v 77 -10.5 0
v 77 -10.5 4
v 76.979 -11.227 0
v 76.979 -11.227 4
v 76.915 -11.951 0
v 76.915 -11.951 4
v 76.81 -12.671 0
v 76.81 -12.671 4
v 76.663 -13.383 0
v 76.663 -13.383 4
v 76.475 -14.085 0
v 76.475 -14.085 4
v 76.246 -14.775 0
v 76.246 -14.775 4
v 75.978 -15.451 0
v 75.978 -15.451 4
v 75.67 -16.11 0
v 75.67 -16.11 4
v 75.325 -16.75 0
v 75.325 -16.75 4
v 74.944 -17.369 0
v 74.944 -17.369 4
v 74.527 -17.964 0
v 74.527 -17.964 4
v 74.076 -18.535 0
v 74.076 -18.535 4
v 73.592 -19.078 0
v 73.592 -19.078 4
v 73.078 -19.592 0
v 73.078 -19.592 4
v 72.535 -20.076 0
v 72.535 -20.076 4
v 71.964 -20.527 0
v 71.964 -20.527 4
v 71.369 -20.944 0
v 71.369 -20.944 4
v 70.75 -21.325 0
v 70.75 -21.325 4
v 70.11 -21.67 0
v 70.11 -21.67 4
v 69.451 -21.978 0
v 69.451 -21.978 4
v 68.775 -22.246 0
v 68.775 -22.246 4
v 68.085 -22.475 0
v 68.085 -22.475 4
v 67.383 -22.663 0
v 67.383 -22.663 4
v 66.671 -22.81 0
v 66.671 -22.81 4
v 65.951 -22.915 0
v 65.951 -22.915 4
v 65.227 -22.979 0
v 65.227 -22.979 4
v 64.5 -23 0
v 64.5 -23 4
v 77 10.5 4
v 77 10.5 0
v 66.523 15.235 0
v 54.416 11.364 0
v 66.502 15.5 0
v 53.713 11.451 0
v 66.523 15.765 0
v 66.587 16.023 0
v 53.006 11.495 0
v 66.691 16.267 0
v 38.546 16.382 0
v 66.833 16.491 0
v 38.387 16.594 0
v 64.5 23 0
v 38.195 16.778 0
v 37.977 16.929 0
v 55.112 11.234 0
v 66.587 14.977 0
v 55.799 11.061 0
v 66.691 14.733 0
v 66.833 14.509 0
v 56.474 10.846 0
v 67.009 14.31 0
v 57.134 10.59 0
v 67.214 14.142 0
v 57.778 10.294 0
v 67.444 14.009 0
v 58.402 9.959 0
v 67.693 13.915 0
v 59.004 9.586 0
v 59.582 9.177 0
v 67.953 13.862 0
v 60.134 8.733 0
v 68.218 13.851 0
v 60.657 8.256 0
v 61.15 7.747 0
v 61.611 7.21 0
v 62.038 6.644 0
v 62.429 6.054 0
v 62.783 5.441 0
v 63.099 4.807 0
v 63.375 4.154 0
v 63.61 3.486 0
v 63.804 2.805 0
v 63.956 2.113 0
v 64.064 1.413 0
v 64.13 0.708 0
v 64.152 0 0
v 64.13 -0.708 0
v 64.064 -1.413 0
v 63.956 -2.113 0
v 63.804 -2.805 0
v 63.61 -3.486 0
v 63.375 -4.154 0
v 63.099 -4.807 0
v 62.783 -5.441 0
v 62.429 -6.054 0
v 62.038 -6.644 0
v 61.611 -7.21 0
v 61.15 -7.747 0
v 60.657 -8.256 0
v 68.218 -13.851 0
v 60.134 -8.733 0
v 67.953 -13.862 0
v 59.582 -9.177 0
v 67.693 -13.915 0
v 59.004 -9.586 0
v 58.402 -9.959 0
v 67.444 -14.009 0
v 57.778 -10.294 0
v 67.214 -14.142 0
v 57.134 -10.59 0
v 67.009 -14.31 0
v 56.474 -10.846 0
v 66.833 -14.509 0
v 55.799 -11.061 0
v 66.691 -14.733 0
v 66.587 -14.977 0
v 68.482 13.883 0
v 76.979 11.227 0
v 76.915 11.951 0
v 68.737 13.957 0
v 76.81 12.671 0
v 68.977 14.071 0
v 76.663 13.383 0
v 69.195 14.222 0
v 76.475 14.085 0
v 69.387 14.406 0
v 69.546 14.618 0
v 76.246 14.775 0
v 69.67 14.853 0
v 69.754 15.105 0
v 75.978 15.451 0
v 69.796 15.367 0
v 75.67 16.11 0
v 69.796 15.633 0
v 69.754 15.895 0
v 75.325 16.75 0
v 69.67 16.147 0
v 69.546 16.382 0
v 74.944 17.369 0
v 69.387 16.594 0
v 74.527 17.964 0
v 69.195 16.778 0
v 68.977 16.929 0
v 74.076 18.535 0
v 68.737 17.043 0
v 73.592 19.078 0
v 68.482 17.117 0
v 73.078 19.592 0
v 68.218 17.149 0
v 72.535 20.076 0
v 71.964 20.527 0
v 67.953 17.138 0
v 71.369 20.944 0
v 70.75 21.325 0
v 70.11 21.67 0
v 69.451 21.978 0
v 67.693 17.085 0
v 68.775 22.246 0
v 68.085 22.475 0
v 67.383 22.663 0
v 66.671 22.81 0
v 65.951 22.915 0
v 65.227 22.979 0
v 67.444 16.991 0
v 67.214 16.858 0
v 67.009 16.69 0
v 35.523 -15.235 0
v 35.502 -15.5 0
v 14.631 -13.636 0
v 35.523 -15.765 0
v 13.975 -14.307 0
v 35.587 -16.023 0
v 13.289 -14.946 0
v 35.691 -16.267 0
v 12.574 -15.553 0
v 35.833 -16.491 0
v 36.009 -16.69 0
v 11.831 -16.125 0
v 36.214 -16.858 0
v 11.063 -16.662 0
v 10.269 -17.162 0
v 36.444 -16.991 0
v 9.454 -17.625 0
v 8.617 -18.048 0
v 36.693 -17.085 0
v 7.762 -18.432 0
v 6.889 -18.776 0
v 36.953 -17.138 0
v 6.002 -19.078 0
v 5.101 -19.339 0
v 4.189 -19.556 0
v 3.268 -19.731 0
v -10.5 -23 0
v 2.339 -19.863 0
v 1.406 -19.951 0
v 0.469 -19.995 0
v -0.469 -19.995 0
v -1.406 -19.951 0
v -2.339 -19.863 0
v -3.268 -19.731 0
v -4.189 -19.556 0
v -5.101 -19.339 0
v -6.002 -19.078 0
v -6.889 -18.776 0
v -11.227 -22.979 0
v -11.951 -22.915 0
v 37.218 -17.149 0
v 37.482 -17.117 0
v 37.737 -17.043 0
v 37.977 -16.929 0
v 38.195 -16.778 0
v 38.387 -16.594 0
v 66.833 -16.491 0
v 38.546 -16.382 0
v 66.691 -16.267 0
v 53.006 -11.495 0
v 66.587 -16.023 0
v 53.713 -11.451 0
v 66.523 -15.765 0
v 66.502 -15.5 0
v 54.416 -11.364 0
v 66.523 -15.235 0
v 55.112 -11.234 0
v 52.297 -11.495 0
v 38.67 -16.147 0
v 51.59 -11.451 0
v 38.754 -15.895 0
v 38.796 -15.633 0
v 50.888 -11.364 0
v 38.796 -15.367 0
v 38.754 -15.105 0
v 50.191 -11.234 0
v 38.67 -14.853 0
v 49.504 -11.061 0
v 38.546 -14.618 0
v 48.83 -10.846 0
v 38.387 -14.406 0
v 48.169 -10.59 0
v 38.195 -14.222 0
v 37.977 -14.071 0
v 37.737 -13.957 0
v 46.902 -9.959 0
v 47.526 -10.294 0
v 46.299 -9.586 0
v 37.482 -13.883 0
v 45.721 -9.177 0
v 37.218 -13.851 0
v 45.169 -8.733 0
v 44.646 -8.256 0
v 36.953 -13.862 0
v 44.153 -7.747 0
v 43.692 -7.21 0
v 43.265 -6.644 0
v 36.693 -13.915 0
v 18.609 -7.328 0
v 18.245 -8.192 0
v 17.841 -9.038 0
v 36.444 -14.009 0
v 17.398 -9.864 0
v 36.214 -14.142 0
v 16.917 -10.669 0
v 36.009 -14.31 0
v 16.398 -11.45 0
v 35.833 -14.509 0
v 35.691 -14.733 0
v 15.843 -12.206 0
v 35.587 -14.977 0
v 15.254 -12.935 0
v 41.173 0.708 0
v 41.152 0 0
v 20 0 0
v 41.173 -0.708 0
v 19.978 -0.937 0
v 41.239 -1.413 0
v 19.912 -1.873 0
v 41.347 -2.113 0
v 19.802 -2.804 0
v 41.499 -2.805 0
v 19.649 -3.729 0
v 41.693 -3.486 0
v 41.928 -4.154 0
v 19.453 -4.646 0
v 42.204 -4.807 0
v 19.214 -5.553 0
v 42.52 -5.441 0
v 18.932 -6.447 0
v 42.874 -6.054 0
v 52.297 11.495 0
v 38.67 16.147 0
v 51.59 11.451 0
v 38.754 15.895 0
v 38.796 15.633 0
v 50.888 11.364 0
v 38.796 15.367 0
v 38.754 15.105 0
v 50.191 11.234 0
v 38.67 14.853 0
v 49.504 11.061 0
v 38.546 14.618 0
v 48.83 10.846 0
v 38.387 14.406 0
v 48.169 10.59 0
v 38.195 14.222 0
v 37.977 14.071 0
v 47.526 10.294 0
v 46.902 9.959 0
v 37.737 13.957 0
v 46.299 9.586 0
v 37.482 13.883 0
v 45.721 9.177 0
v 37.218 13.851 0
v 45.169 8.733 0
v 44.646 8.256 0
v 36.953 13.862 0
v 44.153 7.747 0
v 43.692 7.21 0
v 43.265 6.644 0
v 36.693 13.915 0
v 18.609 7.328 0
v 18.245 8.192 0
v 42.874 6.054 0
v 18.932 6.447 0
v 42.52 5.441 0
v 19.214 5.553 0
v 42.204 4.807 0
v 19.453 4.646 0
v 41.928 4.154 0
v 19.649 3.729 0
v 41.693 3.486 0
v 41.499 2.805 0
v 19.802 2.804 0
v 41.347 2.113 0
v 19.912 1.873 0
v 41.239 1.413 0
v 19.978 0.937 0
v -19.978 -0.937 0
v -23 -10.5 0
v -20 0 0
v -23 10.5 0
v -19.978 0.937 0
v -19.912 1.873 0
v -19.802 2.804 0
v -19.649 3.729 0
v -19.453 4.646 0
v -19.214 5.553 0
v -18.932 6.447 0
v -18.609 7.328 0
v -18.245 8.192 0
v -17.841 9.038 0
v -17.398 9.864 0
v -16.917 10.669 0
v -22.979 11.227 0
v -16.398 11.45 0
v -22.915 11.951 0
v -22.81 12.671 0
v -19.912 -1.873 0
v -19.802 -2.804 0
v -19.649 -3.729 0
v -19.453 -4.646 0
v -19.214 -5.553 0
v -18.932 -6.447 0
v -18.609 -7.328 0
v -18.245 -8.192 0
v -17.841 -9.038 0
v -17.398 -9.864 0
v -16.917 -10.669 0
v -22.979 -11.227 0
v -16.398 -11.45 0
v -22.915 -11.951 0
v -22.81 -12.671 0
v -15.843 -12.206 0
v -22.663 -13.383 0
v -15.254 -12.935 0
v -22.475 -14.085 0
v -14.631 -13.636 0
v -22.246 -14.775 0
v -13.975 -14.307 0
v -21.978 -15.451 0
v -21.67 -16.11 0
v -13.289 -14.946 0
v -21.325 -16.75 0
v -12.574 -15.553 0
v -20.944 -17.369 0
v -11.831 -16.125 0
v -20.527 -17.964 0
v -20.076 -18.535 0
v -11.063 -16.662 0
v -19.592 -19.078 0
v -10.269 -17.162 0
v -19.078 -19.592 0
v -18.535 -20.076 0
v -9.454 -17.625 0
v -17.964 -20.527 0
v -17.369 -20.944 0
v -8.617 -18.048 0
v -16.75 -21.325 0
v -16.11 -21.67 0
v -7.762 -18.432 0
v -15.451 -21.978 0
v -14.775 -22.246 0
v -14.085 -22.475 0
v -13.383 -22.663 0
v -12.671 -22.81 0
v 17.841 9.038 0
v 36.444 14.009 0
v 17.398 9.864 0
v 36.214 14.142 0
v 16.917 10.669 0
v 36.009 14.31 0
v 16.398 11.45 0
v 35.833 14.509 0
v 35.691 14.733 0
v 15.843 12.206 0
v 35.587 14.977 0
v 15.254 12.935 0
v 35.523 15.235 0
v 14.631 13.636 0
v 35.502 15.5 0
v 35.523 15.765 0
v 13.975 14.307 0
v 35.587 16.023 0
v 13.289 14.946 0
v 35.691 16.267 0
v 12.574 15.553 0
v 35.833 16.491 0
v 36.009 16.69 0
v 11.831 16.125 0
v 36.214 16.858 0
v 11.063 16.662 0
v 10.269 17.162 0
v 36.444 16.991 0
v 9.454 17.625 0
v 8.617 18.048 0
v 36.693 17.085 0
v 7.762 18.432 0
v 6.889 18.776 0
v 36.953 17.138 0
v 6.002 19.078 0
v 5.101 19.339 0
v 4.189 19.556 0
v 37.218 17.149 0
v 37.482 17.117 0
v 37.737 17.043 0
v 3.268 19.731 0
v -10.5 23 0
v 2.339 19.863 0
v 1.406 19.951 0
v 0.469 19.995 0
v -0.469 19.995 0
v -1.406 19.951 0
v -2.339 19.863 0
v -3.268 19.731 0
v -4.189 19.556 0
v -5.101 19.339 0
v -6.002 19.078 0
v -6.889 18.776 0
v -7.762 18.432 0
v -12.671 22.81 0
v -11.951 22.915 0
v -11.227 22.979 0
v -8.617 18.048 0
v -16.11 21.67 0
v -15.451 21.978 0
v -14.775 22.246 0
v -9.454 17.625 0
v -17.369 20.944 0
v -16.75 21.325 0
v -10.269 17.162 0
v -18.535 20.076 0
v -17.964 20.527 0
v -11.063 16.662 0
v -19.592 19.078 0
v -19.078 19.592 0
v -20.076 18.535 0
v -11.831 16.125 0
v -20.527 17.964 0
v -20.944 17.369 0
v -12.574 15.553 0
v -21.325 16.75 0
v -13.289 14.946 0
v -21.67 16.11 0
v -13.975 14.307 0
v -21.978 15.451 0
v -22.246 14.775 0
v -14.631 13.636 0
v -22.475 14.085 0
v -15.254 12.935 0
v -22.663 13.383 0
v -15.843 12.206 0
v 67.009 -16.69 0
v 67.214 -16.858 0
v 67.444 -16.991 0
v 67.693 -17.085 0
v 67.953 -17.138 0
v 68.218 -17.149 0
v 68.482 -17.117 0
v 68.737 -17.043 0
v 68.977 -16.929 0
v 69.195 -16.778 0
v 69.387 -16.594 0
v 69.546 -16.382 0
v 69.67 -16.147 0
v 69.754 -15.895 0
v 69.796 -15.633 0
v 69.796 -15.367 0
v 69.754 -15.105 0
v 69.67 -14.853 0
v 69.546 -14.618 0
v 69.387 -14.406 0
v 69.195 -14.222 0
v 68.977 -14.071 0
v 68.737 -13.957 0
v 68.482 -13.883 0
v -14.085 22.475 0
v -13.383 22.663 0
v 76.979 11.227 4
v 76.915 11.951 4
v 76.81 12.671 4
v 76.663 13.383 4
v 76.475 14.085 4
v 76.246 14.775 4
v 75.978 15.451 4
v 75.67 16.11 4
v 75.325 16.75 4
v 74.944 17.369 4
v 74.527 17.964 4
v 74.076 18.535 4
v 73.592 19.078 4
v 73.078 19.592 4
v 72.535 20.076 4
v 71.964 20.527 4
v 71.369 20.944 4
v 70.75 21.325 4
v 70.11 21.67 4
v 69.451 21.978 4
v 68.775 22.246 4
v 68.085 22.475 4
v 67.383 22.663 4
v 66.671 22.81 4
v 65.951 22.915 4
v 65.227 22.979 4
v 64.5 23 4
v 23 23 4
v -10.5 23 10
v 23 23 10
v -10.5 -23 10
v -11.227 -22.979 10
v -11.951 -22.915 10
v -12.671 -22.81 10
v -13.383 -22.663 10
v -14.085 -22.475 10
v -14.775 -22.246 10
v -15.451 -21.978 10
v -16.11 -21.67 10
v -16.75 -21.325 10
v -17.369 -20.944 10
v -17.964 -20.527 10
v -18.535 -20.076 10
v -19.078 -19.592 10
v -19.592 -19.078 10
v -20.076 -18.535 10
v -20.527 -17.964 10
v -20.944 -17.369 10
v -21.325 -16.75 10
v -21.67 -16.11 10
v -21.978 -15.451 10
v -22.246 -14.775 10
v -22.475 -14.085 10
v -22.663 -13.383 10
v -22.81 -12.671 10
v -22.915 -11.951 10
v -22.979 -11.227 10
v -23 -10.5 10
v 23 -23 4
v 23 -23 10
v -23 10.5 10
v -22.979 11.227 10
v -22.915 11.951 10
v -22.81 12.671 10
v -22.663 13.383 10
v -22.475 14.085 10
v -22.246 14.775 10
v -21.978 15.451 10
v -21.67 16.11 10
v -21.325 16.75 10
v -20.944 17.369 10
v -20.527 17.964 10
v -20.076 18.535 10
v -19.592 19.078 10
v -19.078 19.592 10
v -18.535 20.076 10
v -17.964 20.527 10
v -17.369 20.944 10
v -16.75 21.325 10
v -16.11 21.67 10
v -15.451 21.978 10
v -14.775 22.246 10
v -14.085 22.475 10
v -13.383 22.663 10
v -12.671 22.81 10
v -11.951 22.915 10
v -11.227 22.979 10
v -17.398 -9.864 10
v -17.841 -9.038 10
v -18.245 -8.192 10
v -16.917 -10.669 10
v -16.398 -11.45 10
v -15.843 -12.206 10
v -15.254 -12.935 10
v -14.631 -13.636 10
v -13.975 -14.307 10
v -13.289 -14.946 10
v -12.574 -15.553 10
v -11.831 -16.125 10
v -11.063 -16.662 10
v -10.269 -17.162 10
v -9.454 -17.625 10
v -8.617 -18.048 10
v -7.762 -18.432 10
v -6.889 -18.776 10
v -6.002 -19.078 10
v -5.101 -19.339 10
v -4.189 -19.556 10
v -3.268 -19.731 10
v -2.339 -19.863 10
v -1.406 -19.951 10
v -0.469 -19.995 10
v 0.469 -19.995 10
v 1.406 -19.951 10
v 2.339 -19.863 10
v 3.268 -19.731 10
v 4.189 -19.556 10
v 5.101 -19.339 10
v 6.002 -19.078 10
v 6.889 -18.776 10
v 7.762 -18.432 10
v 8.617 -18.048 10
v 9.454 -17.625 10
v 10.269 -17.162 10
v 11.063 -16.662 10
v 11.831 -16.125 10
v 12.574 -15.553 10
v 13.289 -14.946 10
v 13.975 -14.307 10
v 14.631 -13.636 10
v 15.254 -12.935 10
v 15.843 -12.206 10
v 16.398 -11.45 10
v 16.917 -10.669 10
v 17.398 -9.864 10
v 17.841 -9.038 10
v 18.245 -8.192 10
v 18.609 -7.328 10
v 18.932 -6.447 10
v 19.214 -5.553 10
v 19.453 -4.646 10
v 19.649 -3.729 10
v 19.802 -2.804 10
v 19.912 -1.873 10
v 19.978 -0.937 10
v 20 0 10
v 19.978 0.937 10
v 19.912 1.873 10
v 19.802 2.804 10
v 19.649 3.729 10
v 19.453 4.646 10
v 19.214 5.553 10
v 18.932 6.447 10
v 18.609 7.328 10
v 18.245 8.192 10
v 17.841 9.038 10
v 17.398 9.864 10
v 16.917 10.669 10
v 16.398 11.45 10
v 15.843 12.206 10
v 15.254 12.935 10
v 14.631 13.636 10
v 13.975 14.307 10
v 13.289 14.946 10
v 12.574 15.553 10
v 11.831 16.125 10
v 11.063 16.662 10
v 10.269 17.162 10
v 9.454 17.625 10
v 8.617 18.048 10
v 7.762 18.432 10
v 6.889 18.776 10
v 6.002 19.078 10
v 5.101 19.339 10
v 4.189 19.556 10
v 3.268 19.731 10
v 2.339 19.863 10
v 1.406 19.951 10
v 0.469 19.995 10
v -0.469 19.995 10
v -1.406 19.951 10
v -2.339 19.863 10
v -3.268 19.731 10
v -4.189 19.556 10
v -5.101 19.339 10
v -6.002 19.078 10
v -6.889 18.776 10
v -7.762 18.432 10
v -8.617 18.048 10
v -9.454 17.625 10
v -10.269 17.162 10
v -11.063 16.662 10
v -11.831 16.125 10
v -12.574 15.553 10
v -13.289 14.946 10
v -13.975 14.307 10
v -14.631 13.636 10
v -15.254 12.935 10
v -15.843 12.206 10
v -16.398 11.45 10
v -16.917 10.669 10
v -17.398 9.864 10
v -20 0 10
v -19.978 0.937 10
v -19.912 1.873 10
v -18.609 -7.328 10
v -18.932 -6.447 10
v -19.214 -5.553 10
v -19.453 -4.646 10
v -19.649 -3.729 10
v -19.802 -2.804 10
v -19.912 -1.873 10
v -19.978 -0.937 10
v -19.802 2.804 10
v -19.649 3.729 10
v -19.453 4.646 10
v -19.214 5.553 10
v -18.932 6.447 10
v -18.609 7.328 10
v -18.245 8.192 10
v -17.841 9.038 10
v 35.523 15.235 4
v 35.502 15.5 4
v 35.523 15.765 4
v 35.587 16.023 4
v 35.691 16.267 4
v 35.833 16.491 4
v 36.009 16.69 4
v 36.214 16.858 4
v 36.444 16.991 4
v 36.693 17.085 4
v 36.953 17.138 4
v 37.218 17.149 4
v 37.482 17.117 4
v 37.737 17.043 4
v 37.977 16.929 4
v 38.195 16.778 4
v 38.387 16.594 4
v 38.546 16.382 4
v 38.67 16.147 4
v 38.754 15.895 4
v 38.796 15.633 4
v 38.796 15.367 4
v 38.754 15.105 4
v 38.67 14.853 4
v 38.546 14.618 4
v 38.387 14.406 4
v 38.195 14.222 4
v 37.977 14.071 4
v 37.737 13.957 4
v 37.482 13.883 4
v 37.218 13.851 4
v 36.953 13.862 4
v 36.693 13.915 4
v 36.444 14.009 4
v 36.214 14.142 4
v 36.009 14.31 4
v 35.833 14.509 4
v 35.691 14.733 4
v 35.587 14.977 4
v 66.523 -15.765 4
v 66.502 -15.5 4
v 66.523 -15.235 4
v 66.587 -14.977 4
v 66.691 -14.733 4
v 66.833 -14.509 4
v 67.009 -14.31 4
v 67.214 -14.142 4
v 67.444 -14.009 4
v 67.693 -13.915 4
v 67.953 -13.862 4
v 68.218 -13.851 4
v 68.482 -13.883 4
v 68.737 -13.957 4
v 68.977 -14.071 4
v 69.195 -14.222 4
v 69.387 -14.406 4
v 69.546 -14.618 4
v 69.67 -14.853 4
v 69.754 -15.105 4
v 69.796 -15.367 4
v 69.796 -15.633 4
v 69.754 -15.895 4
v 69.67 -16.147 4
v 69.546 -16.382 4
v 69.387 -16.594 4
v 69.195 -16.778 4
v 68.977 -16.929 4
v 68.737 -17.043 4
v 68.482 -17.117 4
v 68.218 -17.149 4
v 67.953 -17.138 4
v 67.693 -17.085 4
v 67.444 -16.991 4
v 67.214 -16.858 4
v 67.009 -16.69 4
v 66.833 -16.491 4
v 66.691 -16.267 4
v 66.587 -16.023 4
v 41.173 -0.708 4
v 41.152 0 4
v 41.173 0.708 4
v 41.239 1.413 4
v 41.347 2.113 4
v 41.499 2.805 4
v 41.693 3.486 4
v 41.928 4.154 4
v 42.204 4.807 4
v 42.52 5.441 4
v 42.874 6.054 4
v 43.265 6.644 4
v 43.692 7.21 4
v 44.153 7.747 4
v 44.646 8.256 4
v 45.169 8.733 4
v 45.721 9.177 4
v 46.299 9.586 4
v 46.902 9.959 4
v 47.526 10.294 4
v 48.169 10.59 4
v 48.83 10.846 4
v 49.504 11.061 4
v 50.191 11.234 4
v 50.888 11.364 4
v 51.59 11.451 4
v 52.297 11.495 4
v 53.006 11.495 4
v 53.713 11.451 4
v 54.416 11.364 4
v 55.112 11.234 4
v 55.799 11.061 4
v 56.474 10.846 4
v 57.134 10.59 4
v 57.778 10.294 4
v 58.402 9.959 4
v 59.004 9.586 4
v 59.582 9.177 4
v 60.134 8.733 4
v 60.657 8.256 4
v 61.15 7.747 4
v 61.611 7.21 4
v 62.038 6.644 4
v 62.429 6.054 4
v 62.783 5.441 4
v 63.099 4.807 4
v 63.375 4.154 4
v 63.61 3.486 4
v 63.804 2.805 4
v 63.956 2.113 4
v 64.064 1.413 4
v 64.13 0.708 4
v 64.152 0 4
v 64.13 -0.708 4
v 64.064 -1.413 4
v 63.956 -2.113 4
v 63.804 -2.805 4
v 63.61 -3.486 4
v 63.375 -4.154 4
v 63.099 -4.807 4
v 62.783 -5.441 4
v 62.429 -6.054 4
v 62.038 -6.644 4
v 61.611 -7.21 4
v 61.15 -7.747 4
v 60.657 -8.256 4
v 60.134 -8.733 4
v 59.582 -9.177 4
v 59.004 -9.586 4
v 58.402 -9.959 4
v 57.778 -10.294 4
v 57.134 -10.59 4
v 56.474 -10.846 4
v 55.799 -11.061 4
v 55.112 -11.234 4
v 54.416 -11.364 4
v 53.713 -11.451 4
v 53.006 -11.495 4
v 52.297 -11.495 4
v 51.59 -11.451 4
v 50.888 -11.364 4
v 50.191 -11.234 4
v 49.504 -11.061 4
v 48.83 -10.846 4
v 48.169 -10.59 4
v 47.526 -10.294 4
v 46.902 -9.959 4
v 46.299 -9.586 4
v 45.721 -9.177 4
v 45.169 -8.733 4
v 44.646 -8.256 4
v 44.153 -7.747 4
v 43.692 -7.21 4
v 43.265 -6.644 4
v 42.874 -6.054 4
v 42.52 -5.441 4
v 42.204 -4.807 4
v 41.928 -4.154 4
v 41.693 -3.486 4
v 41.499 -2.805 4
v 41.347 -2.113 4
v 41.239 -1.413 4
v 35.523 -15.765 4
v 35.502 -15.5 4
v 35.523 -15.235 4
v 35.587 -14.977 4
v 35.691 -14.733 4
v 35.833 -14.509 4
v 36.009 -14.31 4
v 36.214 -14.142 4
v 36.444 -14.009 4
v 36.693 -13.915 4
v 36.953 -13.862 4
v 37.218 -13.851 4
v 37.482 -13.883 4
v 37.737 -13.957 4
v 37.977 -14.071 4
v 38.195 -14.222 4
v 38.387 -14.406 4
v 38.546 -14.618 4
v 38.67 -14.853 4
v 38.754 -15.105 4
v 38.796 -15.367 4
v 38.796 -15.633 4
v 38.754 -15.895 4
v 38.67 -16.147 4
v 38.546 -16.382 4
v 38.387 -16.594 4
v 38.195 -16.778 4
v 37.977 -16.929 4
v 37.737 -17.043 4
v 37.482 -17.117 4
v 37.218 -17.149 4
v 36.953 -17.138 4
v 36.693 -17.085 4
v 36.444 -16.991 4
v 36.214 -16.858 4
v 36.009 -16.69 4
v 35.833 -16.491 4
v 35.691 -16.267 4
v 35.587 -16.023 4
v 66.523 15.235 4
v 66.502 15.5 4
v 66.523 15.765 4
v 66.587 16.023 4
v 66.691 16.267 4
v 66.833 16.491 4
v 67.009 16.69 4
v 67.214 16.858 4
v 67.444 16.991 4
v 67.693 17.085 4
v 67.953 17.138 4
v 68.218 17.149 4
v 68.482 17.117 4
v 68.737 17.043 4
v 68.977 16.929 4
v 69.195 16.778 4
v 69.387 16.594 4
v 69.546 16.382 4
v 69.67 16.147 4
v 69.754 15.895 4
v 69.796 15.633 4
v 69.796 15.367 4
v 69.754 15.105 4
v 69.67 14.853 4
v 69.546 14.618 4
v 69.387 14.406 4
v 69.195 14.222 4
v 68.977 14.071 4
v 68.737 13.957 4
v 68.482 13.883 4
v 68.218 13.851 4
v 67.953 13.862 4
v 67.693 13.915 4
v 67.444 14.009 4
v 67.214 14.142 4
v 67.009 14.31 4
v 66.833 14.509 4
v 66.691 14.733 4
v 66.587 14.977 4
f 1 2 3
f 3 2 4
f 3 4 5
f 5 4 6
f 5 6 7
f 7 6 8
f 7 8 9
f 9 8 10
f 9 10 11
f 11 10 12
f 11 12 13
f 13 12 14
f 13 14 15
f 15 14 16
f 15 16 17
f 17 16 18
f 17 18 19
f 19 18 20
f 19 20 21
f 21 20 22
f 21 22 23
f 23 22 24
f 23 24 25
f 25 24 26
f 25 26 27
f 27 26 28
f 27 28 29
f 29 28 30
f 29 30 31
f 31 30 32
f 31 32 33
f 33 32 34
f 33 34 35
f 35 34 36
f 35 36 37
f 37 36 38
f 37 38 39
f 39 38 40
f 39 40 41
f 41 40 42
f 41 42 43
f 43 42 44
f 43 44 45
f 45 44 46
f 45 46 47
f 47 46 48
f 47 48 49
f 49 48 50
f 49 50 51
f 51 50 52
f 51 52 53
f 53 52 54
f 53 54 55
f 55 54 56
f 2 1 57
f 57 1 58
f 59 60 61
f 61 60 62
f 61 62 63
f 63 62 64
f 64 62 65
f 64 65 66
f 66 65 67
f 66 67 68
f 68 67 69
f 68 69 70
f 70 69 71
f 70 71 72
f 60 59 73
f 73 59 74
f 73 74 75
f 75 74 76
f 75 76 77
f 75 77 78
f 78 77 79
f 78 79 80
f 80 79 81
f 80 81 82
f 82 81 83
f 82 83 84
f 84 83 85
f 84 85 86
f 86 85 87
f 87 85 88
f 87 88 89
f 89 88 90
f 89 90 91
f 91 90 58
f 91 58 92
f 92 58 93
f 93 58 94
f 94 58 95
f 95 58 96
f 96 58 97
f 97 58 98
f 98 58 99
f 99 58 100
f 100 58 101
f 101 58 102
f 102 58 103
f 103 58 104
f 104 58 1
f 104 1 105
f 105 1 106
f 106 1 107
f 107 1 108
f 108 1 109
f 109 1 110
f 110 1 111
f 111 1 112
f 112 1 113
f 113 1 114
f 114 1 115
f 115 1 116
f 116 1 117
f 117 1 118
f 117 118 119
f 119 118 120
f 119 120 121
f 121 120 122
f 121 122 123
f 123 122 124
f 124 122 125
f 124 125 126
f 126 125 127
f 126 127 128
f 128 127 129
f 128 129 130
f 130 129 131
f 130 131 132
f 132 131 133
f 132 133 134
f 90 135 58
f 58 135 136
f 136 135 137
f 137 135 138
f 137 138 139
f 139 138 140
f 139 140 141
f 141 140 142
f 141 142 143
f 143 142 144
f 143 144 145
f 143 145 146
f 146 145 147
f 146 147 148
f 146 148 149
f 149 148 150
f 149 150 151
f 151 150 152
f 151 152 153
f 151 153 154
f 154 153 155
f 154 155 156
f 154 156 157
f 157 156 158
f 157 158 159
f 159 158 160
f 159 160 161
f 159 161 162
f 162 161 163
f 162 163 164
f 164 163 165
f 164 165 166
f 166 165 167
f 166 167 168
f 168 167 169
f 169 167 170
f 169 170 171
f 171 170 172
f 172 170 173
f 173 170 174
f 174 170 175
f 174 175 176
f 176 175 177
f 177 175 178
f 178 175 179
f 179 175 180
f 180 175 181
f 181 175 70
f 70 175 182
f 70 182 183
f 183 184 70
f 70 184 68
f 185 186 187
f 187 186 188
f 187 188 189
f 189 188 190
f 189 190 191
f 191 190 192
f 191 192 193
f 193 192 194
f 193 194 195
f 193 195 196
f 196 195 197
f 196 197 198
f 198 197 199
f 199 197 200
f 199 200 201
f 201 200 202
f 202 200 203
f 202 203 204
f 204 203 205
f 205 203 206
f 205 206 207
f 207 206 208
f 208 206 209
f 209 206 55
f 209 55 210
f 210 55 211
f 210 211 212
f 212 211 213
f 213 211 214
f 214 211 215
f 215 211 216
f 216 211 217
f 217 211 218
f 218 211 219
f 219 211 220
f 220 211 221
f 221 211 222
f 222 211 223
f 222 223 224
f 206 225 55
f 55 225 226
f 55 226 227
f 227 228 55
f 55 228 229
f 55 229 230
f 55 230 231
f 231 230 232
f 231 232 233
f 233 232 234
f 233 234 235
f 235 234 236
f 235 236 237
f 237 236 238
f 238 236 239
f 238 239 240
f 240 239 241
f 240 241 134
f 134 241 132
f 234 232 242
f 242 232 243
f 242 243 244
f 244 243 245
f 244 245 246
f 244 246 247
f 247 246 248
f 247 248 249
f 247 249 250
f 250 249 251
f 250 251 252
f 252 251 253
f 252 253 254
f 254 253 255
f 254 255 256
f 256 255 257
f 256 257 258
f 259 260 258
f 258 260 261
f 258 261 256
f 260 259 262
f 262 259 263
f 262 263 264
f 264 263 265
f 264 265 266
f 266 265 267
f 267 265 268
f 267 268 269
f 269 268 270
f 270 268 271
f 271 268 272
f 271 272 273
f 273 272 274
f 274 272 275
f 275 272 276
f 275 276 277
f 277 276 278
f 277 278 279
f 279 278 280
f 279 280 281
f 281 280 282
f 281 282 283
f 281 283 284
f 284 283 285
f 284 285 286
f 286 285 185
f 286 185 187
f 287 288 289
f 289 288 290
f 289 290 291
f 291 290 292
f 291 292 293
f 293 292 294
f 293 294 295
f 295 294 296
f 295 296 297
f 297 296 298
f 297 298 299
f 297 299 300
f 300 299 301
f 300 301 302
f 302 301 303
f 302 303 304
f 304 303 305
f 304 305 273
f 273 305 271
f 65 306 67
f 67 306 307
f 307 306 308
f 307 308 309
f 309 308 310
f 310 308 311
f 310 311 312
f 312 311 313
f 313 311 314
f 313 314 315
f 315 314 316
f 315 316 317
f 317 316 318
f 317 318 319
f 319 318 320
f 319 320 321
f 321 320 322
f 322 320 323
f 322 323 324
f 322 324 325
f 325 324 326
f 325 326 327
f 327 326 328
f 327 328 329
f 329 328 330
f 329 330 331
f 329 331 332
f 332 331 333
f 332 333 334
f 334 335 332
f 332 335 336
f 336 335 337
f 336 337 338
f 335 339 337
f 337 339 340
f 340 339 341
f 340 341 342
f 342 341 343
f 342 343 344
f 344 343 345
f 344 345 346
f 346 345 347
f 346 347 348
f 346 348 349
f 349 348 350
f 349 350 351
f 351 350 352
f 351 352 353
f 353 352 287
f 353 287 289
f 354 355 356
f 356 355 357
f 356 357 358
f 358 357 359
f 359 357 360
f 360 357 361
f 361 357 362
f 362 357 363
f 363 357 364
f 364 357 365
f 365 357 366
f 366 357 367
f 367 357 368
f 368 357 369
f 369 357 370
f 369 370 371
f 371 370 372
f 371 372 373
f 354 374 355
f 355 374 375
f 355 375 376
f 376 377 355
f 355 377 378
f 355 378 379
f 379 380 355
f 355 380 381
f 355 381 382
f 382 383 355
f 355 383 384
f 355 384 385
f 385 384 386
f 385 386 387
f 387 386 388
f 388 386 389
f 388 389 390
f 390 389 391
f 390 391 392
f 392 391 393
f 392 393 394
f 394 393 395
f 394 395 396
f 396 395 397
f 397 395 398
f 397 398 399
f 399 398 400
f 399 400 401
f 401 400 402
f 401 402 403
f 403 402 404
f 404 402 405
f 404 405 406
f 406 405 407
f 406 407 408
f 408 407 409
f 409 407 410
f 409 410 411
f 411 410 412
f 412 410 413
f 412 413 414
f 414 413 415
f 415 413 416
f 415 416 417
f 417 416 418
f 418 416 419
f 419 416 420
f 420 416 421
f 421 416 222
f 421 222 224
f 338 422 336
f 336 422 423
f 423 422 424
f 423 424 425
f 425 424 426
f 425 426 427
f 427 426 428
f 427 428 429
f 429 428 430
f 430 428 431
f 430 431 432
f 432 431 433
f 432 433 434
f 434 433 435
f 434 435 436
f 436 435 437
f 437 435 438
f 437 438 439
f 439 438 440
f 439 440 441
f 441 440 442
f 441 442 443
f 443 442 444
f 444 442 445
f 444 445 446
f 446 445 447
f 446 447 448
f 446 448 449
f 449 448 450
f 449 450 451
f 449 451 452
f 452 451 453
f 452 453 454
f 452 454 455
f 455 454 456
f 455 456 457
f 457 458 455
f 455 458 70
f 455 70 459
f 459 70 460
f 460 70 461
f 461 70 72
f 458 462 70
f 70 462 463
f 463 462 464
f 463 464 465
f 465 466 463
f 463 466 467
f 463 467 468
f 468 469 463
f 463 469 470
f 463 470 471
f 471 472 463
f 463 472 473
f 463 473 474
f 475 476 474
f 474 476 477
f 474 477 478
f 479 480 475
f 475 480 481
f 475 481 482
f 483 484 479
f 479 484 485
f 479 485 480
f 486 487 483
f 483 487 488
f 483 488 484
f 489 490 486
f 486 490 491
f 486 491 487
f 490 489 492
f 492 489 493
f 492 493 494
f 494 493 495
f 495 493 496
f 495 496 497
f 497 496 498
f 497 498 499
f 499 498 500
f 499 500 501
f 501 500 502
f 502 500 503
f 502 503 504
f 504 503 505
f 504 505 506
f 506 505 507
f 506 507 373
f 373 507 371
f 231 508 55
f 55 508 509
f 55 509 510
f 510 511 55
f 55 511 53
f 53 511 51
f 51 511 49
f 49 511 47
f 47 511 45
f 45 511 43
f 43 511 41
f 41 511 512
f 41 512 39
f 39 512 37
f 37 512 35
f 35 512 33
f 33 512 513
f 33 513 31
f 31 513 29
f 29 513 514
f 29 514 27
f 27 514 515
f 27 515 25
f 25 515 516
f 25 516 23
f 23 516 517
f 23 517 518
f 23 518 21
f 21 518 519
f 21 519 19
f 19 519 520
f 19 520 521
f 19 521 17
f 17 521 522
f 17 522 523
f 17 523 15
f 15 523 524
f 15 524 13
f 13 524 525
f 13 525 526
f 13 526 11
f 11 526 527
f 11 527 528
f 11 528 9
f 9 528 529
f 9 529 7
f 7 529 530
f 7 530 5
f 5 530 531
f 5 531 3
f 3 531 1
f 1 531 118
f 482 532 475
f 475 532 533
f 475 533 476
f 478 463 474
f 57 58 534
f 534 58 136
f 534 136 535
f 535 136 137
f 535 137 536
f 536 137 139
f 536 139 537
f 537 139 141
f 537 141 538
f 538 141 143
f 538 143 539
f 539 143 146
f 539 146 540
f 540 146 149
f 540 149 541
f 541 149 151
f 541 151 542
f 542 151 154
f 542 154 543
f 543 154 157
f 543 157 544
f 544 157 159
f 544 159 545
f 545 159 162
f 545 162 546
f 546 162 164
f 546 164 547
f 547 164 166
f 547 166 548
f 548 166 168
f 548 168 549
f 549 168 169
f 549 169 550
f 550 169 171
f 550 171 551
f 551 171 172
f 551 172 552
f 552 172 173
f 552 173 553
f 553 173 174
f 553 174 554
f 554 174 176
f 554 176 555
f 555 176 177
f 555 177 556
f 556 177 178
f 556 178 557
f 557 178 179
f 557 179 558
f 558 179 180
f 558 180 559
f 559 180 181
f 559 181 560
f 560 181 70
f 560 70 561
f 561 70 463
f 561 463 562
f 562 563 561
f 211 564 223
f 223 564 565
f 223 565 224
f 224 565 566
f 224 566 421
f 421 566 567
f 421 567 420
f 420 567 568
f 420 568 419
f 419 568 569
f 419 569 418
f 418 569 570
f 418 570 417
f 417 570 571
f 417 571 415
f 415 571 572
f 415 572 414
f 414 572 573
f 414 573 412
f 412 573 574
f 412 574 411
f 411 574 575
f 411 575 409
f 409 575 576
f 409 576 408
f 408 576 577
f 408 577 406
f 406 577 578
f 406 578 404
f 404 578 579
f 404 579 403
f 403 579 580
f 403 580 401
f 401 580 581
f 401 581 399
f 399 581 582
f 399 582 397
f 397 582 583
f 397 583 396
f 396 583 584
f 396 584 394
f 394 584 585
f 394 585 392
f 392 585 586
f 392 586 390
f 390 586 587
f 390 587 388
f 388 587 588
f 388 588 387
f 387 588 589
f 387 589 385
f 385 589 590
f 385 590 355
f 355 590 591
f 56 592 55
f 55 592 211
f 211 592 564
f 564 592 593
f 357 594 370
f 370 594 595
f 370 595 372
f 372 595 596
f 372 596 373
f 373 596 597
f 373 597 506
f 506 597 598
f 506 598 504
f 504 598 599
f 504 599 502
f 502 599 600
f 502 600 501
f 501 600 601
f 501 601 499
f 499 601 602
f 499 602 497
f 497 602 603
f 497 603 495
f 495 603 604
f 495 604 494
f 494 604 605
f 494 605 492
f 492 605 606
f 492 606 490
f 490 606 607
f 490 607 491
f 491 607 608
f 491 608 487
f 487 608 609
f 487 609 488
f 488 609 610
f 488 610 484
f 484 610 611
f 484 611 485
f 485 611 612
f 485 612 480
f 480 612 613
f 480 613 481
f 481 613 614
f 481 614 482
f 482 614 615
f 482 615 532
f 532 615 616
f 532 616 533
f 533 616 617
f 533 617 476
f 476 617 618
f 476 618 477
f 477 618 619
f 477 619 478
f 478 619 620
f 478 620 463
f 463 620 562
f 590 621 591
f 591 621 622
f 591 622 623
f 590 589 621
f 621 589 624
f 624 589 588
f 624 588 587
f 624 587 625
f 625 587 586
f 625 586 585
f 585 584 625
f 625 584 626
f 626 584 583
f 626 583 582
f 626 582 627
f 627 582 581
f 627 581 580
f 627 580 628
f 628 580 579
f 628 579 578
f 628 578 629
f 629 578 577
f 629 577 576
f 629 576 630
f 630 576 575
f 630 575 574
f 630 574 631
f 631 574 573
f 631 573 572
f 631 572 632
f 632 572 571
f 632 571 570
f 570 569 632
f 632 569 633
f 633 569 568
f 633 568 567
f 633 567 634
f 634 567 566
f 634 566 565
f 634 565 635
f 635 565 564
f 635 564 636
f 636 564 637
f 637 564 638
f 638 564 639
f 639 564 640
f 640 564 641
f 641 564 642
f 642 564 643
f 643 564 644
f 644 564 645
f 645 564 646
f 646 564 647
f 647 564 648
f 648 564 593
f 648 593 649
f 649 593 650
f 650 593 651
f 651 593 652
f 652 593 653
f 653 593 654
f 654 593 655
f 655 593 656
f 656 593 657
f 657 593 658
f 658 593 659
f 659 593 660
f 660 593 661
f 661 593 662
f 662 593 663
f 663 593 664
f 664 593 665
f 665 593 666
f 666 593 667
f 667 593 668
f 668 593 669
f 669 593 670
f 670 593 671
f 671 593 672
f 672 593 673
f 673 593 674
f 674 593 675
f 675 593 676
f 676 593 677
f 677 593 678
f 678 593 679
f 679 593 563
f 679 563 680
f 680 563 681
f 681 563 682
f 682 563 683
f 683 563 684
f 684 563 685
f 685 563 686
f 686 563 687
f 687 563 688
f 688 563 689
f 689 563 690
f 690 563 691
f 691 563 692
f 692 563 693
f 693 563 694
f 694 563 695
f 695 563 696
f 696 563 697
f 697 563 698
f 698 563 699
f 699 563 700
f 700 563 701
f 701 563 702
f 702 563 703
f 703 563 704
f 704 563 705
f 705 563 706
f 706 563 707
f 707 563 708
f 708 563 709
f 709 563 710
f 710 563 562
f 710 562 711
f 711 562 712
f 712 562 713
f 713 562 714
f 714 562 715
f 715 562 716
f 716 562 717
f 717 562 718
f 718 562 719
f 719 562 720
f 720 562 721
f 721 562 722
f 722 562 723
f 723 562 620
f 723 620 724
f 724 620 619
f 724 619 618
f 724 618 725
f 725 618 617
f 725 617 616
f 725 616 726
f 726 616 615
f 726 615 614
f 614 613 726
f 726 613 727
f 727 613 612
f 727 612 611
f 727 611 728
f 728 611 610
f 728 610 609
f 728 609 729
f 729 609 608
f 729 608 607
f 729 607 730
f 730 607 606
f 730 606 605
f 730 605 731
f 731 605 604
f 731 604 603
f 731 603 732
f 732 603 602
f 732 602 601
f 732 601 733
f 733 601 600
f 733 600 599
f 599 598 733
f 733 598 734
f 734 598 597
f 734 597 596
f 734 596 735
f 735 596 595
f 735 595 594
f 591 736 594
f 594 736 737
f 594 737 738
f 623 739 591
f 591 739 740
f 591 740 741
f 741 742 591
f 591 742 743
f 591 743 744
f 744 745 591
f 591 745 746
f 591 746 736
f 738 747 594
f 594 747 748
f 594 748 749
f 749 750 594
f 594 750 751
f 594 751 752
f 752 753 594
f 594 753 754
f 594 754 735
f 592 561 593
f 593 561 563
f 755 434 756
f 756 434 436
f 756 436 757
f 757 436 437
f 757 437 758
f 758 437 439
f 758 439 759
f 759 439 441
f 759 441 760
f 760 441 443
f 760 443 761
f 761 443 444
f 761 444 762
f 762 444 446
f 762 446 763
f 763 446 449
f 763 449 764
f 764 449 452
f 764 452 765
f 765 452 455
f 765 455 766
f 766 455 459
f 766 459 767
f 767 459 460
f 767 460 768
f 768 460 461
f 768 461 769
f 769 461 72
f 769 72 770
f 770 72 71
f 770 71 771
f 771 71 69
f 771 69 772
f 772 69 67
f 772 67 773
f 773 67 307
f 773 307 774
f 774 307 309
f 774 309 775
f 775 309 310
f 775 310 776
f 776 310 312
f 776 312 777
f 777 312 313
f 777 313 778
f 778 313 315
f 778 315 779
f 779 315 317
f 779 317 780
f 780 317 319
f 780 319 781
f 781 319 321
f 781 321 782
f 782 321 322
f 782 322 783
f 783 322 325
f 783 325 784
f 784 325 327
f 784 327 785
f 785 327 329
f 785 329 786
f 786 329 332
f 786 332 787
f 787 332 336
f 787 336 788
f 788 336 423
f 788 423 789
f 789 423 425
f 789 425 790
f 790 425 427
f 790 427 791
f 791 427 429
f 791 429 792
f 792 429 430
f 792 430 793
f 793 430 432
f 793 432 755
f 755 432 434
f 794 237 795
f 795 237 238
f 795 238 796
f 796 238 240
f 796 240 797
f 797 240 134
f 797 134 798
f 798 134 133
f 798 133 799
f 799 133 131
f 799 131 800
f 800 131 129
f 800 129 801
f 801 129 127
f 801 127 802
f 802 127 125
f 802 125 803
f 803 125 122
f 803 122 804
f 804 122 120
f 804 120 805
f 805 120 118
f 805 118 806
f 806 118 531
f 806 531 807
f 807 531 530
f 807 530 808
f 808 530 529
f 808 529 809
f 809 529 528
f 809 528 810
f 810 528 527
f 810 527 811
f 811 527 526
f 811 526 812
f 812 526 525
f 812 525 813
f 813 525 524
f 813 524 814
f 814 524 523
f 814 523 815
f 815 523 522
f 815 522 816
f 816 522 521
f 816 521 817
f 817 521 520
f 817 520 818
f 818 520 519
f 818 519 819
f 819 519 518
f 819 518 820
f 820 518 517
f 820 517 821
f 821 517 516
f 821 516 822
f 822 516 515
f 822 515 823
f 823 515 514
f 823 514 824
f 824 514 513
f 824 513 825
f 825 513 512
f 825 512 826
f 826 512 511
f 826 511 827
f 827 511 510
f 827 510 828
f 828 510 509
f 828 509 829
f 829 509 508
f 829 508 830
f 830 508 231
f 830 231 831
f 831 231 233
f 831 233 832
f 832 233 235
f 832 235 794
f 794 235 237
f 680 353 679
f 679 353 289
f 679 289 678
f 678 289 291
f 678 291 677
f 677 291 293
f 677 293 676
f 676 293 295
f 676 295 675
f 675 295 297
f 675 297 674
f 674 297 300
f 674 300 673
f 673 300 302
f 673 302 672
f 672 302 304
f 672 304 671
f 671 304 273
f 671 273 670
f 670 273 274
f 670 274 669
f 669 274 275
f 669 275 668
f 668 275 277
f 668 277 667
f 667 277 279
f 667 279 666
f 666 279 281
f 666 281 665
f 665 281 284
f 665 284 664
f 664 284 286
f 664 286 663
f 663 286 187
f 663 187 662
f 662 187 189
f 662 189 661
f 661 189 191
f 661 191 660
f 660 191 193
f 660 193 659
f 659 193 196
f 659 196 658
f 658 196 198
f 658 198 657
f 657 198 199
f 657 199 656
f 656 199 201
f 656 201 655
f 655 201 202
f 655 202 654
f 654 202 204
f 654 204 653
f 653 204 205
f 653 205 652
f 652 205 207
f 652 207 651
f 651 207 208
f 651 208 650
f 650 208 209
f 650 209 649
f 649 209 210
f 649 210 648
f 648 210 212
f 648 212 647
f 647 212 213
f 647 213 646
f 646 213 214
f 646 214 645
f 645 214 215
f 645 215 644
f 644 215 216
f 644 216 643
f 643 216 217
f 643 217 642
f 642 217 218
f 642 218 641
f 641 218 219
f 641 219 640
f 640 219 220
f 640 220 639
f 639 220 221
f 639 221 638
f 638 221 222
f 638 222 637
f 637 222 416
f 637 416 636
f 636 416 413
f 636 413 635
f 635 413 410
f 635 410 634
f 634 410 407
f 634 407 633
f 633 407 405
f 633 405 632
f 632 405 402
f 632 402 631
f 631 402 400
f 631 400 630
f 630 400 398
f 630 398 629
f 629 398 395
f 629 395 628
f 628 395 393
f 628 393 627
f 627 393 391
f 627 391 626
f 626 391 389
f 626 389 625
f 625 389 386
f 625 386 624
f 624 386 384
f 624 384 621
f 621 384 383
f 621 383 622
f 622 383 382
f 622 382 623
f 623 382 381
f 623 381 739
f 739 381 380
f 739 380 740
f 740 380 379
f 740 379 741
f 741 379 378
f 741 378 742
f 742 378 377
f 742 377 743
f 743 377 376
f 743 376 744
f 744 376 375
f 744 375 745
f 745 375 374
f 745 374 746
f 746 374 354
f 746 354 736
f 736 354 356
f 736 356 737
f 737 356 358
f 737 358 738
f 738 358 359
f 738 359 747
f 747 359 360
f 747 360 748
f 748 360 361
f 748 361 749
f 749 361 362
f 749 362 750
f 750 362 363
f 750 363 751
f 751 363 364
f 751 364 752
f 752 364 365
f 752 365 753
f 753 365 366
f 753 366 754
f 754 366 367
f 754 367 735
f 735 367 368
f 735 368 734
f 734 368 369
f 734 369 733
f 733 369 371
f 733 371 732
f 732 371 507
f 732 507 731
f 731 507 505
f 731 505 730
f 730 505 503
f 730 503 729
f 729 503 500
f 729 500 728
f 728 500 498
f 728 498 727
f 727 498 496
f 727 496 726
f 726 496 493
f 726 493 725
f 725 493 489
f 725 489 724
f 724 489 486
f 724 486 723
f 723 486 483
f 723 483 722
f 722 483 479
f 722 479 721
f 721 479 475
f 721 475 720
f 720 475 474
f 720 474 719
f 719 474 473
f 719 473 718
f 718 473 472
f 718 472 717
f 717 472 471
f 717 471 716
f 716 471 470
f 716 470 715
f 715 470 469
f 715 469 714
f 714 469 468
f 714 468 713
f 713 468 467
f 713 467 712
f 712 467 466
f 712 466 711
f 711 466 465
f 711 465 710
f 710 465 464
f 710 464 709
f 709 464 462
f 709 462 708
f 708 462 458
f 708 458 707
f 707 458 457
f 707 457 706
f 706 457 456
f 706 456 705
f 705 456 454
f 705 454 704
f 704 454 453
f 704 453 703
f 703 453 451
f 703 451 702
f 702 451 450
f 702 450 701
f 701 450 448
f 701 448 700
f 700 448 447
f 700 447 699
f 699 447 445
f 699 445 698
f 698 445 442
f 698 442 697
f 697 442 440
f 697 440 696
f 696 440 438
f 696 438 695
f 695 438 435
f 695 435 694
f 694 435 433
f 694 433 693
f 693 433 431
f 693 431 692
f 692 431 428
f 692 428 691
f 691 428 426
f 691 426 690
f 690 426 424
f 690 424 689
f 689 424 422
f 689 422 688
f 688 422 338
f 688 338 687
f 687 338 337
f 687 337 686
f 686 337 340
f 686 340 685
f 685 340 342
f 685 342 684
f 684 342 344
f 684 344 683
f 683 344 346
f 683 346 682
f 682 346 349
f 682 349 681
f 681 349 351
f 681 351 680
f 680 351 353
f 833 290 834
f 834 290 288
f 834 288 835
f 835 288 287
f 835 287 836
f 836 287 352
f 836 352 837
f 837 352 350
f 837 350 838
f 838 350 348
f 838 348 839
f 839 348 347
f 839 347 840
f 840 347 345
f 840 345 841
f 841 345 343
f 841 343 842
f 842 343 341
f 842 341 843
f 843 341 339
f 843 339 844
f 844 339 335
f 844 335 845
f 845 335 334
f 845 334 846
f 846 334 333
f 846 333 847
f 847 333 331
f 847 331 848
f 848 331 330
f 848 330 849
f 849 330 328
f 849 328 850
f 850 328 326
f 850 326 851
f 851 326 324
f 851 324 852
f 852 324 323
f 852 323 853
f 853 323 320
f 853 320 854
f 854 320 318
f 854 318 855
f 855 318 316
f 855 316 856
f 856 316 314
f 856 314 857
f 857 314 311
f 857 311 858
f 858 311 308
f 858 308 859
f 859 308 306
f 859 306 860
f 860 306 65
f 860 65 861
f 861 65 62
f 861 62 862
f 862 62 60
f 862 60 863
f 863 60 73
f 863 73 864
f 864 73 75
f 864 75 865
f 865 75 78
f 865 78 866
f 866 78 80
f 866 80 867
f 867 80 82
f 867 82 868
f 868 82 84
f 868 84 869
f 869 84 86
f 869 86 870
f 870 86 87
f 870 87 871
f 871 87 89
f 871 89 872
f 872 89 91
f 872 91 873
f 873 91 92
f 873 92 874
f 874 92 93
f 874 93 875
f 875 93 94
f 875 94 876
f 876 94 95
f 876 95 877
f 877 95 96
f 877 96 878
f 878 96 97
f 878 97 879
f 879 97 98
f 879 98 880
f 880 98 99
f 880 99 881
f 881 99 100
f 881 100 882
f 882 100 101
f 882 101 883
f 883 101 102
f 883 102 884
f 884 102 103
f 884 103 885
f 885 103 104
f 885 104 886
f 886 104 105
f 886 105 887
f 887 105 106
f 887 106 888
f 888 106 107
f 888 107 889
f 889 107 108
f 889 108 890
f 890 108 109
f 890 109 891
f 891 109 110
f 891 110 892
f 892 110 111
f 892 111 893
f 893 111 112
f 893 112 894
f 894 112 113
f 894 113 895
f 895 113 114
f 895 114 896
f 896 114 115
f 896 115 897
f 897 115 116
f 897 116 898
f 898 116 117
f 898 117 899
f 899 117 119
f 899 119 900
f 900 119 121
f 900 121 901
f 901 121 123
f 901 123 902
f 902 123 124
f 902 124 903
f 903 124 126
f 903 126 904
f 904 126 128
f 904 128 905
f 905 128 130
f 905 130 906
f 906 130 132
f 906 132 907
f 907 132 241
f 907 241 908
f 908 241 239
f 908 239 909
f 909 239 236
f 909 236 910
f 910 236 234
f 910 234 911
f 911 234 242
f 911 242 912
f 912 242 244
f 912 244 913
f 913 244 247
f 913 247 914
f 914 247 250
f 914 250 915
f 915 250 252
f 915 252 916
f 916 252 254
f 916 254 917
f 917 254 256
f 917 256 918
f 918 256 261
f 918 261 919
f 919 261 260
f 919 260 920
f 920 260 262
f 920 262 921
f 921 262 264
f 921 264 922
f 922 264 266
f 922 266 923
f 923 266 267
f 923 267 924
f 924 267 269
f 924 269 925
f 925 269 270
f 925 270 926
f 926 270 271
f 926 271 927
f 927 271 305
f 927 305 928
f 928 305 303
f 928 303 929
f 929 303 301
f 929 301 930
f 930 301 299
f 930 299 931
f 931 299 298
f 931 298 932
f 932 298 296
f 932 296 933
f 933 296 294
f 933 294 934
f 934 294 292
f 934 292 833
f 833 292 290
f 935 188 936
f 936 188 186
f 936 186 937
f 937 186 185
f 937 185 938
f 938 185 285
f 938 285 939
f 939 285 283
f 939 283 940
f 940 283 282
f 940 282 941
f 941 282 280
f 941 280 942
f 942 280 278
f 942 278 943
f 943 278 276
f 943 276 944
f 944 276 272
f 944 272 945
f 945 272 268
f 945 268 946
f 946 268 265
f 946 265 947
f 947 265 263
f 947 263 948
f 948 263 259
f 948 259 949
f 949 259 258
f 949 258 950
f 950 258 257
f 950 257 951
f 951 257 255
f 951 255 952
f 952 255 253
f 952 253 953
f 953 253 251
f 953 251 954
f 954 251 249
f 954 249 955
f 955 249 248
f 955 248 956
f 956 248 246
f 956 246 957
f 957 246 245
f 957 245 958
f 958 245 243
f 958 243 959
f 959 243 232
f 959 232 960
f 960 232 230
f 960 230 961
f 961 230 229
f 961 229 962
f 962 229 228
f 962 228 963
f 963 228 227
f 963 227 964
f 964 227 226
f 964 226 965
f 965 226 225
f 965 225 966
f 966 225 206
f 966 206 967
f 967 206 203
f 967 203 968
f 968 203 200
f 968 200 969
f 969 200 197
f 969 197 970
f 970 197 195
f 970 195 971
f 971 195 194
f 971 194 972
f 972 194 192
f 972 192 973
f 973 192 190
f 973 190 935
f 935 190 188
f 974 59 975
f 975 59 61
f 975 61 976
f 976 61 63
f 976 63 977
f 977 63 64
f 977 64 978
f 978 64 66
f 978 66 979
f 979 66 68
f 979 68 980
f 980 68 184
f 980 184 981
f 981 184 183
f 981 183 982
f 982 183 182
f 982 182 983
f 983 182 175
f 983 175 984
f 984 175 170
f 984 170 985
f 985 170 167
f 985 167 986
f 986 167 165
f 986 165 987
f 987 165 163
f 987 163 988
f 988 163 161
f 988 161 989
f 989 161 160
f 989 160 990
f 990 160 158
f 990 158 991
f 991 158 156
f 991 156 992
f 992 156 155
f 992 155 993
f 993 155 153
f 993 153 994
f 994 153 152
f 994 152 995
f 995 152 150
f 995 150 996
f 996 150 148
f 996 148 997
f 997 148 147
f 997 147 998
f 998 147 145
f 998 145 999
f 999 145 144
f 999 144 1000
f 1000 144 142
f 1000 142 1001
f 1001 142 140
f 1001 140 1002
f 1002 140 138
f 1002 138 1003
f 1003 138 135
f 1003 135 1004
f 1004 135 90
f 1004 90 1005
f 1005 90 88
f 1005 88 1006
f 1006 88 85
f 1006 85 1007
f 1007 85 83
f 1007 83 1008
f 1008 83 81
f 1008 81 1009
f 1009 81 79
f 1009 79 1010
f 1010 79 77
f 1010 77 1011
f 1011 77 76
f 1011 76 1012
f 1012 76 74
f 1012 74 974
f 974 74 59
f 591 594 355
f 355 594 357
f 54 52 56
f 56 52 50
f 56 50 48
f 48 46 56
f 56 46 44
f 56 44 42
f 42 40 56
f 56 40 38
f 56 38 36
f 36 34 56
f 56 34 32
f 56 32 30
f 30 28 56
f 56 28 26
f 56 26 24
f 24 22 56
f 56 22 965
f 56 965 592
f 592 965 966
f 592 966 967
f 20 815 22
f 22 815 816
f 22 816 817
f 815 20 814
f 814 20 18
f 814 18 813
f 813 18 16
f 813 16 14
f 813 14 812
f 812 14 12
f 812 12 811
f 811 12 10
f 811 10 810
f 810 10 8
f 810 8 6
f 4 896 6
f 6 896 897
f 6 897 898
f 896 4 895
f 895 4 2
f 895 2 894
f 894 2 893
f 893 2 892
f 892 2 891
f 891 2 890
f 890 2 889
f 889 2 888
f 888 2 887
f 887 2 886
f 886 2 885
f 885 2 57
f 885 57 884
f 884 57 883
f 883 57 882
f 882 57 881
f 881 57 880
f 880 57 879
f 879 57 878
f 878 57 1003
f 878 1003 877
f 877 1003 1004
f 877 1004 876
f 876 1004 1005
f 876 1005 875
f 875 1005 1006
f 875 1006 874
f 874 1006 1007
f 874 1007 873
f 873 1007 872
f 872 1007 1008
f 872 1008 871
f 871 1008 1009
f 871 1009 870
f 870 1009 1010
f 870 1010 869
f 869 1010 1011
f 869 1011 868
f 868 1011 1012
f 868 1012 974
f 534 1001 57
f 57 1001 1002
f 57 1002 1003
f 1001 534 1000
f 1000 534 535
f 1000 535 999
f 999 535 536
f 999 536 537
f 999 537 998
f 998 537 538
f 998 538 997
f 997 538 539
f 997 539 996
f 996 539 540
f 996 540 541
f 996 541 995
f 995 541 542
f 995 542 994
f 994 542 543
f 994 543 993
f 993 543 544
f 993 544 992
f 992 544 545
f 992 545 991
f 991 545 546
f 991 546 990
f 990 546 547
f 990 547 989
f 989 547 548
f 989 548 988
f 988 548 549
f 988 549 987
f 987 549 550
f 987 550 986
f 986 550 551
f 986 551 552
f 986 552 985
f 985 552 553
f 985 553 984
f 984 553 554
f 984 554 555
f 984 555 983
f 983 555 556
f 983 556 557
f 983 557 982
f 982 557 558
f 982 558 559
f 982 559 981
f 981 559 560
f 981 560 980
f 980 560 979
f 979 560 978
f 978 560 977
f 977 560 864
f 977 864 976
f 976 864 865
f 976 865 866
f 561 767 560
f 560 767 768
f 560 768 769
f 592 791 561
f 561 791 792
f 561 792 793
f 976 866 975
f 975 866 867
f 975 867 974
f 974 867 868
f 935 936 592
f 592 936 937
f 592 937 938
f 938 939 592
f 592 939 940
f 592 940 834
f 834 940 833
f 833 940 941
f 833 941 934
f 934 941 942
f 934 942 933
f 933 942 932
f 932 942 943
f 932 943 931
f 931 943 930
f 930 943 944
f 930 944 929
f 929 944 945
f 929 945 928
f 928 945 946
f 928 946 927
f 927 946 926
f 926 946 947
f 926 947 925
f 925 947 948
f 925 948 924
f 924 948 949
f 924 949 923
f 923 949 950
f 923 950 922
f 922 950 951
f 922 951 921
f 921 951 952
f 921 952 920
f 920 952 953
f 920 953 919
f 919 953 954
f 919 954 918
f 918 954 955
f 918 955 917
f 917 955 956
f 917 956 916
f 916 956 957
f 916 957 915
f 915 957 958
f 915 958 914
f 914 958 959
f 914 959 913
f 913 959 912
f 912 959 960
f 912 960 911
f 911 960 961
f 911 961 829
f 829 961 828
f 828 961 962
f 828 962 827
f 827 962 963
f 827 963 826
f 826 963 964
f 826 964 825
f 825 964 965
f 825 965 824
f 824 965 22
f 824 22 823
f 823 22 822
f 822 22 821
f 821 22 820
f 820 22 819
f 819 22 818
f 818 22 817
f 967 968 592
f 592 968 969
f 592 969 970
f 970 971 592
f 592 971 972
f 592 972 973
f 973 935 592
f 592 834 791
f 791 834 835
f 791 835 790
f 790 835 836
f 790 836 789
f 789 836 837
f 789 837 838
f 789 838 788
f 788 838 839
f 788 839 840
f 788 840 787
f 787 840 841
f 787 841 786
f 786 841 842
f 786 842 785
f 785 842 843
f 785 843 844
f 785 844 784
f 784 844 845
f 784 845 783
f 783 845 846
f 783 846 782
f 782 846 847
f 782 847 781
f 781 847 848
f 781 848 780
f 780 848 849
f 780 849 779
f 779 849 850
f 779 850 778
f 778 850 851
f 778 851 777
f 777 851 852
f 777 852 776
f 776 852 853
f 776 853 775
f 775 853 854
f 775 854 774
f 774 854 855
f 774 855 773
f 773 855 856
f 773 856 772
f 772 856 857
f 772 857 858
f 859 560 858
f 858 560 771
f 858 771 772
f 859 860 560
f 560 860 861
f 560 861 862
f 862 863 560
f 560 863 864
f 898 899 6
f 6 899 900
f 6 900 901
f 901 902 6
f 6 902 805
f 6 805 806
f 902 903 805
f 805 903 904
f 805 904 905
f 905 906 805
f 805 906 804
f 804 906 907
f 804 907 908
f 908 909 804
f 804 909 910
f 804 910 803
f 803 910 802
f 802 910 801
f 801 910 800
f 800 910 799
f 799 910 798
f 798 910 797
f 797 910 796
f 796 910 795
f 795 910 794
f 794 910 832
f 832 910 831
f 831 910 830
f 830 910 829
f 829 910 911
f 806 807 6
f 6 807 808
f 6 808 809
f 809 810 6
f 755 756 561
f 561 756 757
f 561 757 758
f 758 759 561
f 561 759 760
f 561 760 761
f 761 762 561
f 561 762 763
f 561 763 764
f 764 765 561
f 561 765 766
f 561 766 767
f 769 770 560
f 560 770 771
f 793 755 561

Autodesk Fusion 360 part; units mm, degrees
sketch "Skizze1" plane through (0, 0, 0) normal (0, 0, 1) x (1, 0, 0)
  circle A0 centre (0, 0) radius 20
  line L0 (85, 23) -> (-23, 23)
  line L1 (-23, -23) -> (85, -23)
  line L2 (85, -23) -> (85, 23)
  line L3 (85, 23) -> (-23, -6.2235) construction
  line L4 (-23, 6.2235) -> (85, -23) construction
  line L5 (-23, -23) -> (-23, 23)
  line L6 (37.1516, -15.5) -> (68.1516, 15.5) construction
  line L7 (68.1516, -15.5) -> (37.1516, 15.5) construction
  circle A1 centre (37.1516, 15.5) radius 1.65
  circle A2 centre (37.1516, -15.5) radius 1.65
  circle A3 centre (68.1516, -15.5) radius 1.65
  circle A4 centre (68.1516, 15.5) radius 1.65
  circle A5 centre (52.6516, 0) radius 11.5
  line L8 (68.1516, 15.5) -> (66.5016, 15.5)
  line L9 (38.8016, 15.5) -> (37.1516, 15.5)
  line L10 (68.1516, -15.5) -> (68.1516, -13.85)
  line L11 (68.1516, 13.85) -> (68.1516, 15.5)
  line L12 (37.1516, -15.5) -> (38.8016, -15.5)
  line L13 (66.5016, -15.5) -> (68.1516, -15.5)
  line L14 (37.1516, 15.5) -> (37.1516, 13.85)
  line L15 (37.1516, -13.85) -> (37.1516, -15.5)
  line L16 (20, 0) -> (64, 0)
  point P0 (52.6516, 0)
  dimension "d1" = 31
  dimension "d2" = 31
  dimension "d3" = 3.3
  dimension "d4" = 3.3
  dimension "d5" = 3.3
  dimension "d6" = 3.3
  dimension "d7" = 23
extrude "Extrusion1" add sketch "Skizze1" along normal blind 4
sketch "Skizze2" plane through (0, 0, 4) normal (0, 0, 1) x (-1, 0, 0)
  circle A0 centre (-37.1516, 15.5) radius 1.65
  circle A1 centre (0, 0) radius 20
  circle A2 centre (-68.1516, 15.5) radius 1.65
  circle A3 centre (-37.1516, -15.5) radius 1.65
  circle A4 centre (-68.1516, -15.5) radius 1.65
  circle A5 centre (-52.6516, 0) radius 11.5
  line L0 (-85, 23) -> (-85, -23)
  line L1 (-85, -23) -> (23, -23)
  line L2 (23, -23) -> (23, 23)
  line L3 (23, 23) -> (-85, 23)
  line L4 (23, 23) -> (-23, 23)
  line L5 (-23, 23) -> (-23, -23)
  line L6 (-23, -23) -> (23, -23)
  line L7 (23, -23) -> (23, 23)
  line L8 (23, 23) -> (-23, -23) construction
  line L9 (-23, 23) -> (23, -23) construction
extrude "Extrusion2" add sketch "Skizze2" along normal blind 6 contours L1 L2 L3 L4 L5 L6 L7
extrude "Extrusion3" cut 1 faces at (85, -7.6667, 1.3333) along direction (-1, 0, 0) blind 8
fillet "Abrundung1" radius 12.5 4 edges at (-23, 23, 5) (-23, -23, 5) (77, 23, 2) (77, -23, 2)
